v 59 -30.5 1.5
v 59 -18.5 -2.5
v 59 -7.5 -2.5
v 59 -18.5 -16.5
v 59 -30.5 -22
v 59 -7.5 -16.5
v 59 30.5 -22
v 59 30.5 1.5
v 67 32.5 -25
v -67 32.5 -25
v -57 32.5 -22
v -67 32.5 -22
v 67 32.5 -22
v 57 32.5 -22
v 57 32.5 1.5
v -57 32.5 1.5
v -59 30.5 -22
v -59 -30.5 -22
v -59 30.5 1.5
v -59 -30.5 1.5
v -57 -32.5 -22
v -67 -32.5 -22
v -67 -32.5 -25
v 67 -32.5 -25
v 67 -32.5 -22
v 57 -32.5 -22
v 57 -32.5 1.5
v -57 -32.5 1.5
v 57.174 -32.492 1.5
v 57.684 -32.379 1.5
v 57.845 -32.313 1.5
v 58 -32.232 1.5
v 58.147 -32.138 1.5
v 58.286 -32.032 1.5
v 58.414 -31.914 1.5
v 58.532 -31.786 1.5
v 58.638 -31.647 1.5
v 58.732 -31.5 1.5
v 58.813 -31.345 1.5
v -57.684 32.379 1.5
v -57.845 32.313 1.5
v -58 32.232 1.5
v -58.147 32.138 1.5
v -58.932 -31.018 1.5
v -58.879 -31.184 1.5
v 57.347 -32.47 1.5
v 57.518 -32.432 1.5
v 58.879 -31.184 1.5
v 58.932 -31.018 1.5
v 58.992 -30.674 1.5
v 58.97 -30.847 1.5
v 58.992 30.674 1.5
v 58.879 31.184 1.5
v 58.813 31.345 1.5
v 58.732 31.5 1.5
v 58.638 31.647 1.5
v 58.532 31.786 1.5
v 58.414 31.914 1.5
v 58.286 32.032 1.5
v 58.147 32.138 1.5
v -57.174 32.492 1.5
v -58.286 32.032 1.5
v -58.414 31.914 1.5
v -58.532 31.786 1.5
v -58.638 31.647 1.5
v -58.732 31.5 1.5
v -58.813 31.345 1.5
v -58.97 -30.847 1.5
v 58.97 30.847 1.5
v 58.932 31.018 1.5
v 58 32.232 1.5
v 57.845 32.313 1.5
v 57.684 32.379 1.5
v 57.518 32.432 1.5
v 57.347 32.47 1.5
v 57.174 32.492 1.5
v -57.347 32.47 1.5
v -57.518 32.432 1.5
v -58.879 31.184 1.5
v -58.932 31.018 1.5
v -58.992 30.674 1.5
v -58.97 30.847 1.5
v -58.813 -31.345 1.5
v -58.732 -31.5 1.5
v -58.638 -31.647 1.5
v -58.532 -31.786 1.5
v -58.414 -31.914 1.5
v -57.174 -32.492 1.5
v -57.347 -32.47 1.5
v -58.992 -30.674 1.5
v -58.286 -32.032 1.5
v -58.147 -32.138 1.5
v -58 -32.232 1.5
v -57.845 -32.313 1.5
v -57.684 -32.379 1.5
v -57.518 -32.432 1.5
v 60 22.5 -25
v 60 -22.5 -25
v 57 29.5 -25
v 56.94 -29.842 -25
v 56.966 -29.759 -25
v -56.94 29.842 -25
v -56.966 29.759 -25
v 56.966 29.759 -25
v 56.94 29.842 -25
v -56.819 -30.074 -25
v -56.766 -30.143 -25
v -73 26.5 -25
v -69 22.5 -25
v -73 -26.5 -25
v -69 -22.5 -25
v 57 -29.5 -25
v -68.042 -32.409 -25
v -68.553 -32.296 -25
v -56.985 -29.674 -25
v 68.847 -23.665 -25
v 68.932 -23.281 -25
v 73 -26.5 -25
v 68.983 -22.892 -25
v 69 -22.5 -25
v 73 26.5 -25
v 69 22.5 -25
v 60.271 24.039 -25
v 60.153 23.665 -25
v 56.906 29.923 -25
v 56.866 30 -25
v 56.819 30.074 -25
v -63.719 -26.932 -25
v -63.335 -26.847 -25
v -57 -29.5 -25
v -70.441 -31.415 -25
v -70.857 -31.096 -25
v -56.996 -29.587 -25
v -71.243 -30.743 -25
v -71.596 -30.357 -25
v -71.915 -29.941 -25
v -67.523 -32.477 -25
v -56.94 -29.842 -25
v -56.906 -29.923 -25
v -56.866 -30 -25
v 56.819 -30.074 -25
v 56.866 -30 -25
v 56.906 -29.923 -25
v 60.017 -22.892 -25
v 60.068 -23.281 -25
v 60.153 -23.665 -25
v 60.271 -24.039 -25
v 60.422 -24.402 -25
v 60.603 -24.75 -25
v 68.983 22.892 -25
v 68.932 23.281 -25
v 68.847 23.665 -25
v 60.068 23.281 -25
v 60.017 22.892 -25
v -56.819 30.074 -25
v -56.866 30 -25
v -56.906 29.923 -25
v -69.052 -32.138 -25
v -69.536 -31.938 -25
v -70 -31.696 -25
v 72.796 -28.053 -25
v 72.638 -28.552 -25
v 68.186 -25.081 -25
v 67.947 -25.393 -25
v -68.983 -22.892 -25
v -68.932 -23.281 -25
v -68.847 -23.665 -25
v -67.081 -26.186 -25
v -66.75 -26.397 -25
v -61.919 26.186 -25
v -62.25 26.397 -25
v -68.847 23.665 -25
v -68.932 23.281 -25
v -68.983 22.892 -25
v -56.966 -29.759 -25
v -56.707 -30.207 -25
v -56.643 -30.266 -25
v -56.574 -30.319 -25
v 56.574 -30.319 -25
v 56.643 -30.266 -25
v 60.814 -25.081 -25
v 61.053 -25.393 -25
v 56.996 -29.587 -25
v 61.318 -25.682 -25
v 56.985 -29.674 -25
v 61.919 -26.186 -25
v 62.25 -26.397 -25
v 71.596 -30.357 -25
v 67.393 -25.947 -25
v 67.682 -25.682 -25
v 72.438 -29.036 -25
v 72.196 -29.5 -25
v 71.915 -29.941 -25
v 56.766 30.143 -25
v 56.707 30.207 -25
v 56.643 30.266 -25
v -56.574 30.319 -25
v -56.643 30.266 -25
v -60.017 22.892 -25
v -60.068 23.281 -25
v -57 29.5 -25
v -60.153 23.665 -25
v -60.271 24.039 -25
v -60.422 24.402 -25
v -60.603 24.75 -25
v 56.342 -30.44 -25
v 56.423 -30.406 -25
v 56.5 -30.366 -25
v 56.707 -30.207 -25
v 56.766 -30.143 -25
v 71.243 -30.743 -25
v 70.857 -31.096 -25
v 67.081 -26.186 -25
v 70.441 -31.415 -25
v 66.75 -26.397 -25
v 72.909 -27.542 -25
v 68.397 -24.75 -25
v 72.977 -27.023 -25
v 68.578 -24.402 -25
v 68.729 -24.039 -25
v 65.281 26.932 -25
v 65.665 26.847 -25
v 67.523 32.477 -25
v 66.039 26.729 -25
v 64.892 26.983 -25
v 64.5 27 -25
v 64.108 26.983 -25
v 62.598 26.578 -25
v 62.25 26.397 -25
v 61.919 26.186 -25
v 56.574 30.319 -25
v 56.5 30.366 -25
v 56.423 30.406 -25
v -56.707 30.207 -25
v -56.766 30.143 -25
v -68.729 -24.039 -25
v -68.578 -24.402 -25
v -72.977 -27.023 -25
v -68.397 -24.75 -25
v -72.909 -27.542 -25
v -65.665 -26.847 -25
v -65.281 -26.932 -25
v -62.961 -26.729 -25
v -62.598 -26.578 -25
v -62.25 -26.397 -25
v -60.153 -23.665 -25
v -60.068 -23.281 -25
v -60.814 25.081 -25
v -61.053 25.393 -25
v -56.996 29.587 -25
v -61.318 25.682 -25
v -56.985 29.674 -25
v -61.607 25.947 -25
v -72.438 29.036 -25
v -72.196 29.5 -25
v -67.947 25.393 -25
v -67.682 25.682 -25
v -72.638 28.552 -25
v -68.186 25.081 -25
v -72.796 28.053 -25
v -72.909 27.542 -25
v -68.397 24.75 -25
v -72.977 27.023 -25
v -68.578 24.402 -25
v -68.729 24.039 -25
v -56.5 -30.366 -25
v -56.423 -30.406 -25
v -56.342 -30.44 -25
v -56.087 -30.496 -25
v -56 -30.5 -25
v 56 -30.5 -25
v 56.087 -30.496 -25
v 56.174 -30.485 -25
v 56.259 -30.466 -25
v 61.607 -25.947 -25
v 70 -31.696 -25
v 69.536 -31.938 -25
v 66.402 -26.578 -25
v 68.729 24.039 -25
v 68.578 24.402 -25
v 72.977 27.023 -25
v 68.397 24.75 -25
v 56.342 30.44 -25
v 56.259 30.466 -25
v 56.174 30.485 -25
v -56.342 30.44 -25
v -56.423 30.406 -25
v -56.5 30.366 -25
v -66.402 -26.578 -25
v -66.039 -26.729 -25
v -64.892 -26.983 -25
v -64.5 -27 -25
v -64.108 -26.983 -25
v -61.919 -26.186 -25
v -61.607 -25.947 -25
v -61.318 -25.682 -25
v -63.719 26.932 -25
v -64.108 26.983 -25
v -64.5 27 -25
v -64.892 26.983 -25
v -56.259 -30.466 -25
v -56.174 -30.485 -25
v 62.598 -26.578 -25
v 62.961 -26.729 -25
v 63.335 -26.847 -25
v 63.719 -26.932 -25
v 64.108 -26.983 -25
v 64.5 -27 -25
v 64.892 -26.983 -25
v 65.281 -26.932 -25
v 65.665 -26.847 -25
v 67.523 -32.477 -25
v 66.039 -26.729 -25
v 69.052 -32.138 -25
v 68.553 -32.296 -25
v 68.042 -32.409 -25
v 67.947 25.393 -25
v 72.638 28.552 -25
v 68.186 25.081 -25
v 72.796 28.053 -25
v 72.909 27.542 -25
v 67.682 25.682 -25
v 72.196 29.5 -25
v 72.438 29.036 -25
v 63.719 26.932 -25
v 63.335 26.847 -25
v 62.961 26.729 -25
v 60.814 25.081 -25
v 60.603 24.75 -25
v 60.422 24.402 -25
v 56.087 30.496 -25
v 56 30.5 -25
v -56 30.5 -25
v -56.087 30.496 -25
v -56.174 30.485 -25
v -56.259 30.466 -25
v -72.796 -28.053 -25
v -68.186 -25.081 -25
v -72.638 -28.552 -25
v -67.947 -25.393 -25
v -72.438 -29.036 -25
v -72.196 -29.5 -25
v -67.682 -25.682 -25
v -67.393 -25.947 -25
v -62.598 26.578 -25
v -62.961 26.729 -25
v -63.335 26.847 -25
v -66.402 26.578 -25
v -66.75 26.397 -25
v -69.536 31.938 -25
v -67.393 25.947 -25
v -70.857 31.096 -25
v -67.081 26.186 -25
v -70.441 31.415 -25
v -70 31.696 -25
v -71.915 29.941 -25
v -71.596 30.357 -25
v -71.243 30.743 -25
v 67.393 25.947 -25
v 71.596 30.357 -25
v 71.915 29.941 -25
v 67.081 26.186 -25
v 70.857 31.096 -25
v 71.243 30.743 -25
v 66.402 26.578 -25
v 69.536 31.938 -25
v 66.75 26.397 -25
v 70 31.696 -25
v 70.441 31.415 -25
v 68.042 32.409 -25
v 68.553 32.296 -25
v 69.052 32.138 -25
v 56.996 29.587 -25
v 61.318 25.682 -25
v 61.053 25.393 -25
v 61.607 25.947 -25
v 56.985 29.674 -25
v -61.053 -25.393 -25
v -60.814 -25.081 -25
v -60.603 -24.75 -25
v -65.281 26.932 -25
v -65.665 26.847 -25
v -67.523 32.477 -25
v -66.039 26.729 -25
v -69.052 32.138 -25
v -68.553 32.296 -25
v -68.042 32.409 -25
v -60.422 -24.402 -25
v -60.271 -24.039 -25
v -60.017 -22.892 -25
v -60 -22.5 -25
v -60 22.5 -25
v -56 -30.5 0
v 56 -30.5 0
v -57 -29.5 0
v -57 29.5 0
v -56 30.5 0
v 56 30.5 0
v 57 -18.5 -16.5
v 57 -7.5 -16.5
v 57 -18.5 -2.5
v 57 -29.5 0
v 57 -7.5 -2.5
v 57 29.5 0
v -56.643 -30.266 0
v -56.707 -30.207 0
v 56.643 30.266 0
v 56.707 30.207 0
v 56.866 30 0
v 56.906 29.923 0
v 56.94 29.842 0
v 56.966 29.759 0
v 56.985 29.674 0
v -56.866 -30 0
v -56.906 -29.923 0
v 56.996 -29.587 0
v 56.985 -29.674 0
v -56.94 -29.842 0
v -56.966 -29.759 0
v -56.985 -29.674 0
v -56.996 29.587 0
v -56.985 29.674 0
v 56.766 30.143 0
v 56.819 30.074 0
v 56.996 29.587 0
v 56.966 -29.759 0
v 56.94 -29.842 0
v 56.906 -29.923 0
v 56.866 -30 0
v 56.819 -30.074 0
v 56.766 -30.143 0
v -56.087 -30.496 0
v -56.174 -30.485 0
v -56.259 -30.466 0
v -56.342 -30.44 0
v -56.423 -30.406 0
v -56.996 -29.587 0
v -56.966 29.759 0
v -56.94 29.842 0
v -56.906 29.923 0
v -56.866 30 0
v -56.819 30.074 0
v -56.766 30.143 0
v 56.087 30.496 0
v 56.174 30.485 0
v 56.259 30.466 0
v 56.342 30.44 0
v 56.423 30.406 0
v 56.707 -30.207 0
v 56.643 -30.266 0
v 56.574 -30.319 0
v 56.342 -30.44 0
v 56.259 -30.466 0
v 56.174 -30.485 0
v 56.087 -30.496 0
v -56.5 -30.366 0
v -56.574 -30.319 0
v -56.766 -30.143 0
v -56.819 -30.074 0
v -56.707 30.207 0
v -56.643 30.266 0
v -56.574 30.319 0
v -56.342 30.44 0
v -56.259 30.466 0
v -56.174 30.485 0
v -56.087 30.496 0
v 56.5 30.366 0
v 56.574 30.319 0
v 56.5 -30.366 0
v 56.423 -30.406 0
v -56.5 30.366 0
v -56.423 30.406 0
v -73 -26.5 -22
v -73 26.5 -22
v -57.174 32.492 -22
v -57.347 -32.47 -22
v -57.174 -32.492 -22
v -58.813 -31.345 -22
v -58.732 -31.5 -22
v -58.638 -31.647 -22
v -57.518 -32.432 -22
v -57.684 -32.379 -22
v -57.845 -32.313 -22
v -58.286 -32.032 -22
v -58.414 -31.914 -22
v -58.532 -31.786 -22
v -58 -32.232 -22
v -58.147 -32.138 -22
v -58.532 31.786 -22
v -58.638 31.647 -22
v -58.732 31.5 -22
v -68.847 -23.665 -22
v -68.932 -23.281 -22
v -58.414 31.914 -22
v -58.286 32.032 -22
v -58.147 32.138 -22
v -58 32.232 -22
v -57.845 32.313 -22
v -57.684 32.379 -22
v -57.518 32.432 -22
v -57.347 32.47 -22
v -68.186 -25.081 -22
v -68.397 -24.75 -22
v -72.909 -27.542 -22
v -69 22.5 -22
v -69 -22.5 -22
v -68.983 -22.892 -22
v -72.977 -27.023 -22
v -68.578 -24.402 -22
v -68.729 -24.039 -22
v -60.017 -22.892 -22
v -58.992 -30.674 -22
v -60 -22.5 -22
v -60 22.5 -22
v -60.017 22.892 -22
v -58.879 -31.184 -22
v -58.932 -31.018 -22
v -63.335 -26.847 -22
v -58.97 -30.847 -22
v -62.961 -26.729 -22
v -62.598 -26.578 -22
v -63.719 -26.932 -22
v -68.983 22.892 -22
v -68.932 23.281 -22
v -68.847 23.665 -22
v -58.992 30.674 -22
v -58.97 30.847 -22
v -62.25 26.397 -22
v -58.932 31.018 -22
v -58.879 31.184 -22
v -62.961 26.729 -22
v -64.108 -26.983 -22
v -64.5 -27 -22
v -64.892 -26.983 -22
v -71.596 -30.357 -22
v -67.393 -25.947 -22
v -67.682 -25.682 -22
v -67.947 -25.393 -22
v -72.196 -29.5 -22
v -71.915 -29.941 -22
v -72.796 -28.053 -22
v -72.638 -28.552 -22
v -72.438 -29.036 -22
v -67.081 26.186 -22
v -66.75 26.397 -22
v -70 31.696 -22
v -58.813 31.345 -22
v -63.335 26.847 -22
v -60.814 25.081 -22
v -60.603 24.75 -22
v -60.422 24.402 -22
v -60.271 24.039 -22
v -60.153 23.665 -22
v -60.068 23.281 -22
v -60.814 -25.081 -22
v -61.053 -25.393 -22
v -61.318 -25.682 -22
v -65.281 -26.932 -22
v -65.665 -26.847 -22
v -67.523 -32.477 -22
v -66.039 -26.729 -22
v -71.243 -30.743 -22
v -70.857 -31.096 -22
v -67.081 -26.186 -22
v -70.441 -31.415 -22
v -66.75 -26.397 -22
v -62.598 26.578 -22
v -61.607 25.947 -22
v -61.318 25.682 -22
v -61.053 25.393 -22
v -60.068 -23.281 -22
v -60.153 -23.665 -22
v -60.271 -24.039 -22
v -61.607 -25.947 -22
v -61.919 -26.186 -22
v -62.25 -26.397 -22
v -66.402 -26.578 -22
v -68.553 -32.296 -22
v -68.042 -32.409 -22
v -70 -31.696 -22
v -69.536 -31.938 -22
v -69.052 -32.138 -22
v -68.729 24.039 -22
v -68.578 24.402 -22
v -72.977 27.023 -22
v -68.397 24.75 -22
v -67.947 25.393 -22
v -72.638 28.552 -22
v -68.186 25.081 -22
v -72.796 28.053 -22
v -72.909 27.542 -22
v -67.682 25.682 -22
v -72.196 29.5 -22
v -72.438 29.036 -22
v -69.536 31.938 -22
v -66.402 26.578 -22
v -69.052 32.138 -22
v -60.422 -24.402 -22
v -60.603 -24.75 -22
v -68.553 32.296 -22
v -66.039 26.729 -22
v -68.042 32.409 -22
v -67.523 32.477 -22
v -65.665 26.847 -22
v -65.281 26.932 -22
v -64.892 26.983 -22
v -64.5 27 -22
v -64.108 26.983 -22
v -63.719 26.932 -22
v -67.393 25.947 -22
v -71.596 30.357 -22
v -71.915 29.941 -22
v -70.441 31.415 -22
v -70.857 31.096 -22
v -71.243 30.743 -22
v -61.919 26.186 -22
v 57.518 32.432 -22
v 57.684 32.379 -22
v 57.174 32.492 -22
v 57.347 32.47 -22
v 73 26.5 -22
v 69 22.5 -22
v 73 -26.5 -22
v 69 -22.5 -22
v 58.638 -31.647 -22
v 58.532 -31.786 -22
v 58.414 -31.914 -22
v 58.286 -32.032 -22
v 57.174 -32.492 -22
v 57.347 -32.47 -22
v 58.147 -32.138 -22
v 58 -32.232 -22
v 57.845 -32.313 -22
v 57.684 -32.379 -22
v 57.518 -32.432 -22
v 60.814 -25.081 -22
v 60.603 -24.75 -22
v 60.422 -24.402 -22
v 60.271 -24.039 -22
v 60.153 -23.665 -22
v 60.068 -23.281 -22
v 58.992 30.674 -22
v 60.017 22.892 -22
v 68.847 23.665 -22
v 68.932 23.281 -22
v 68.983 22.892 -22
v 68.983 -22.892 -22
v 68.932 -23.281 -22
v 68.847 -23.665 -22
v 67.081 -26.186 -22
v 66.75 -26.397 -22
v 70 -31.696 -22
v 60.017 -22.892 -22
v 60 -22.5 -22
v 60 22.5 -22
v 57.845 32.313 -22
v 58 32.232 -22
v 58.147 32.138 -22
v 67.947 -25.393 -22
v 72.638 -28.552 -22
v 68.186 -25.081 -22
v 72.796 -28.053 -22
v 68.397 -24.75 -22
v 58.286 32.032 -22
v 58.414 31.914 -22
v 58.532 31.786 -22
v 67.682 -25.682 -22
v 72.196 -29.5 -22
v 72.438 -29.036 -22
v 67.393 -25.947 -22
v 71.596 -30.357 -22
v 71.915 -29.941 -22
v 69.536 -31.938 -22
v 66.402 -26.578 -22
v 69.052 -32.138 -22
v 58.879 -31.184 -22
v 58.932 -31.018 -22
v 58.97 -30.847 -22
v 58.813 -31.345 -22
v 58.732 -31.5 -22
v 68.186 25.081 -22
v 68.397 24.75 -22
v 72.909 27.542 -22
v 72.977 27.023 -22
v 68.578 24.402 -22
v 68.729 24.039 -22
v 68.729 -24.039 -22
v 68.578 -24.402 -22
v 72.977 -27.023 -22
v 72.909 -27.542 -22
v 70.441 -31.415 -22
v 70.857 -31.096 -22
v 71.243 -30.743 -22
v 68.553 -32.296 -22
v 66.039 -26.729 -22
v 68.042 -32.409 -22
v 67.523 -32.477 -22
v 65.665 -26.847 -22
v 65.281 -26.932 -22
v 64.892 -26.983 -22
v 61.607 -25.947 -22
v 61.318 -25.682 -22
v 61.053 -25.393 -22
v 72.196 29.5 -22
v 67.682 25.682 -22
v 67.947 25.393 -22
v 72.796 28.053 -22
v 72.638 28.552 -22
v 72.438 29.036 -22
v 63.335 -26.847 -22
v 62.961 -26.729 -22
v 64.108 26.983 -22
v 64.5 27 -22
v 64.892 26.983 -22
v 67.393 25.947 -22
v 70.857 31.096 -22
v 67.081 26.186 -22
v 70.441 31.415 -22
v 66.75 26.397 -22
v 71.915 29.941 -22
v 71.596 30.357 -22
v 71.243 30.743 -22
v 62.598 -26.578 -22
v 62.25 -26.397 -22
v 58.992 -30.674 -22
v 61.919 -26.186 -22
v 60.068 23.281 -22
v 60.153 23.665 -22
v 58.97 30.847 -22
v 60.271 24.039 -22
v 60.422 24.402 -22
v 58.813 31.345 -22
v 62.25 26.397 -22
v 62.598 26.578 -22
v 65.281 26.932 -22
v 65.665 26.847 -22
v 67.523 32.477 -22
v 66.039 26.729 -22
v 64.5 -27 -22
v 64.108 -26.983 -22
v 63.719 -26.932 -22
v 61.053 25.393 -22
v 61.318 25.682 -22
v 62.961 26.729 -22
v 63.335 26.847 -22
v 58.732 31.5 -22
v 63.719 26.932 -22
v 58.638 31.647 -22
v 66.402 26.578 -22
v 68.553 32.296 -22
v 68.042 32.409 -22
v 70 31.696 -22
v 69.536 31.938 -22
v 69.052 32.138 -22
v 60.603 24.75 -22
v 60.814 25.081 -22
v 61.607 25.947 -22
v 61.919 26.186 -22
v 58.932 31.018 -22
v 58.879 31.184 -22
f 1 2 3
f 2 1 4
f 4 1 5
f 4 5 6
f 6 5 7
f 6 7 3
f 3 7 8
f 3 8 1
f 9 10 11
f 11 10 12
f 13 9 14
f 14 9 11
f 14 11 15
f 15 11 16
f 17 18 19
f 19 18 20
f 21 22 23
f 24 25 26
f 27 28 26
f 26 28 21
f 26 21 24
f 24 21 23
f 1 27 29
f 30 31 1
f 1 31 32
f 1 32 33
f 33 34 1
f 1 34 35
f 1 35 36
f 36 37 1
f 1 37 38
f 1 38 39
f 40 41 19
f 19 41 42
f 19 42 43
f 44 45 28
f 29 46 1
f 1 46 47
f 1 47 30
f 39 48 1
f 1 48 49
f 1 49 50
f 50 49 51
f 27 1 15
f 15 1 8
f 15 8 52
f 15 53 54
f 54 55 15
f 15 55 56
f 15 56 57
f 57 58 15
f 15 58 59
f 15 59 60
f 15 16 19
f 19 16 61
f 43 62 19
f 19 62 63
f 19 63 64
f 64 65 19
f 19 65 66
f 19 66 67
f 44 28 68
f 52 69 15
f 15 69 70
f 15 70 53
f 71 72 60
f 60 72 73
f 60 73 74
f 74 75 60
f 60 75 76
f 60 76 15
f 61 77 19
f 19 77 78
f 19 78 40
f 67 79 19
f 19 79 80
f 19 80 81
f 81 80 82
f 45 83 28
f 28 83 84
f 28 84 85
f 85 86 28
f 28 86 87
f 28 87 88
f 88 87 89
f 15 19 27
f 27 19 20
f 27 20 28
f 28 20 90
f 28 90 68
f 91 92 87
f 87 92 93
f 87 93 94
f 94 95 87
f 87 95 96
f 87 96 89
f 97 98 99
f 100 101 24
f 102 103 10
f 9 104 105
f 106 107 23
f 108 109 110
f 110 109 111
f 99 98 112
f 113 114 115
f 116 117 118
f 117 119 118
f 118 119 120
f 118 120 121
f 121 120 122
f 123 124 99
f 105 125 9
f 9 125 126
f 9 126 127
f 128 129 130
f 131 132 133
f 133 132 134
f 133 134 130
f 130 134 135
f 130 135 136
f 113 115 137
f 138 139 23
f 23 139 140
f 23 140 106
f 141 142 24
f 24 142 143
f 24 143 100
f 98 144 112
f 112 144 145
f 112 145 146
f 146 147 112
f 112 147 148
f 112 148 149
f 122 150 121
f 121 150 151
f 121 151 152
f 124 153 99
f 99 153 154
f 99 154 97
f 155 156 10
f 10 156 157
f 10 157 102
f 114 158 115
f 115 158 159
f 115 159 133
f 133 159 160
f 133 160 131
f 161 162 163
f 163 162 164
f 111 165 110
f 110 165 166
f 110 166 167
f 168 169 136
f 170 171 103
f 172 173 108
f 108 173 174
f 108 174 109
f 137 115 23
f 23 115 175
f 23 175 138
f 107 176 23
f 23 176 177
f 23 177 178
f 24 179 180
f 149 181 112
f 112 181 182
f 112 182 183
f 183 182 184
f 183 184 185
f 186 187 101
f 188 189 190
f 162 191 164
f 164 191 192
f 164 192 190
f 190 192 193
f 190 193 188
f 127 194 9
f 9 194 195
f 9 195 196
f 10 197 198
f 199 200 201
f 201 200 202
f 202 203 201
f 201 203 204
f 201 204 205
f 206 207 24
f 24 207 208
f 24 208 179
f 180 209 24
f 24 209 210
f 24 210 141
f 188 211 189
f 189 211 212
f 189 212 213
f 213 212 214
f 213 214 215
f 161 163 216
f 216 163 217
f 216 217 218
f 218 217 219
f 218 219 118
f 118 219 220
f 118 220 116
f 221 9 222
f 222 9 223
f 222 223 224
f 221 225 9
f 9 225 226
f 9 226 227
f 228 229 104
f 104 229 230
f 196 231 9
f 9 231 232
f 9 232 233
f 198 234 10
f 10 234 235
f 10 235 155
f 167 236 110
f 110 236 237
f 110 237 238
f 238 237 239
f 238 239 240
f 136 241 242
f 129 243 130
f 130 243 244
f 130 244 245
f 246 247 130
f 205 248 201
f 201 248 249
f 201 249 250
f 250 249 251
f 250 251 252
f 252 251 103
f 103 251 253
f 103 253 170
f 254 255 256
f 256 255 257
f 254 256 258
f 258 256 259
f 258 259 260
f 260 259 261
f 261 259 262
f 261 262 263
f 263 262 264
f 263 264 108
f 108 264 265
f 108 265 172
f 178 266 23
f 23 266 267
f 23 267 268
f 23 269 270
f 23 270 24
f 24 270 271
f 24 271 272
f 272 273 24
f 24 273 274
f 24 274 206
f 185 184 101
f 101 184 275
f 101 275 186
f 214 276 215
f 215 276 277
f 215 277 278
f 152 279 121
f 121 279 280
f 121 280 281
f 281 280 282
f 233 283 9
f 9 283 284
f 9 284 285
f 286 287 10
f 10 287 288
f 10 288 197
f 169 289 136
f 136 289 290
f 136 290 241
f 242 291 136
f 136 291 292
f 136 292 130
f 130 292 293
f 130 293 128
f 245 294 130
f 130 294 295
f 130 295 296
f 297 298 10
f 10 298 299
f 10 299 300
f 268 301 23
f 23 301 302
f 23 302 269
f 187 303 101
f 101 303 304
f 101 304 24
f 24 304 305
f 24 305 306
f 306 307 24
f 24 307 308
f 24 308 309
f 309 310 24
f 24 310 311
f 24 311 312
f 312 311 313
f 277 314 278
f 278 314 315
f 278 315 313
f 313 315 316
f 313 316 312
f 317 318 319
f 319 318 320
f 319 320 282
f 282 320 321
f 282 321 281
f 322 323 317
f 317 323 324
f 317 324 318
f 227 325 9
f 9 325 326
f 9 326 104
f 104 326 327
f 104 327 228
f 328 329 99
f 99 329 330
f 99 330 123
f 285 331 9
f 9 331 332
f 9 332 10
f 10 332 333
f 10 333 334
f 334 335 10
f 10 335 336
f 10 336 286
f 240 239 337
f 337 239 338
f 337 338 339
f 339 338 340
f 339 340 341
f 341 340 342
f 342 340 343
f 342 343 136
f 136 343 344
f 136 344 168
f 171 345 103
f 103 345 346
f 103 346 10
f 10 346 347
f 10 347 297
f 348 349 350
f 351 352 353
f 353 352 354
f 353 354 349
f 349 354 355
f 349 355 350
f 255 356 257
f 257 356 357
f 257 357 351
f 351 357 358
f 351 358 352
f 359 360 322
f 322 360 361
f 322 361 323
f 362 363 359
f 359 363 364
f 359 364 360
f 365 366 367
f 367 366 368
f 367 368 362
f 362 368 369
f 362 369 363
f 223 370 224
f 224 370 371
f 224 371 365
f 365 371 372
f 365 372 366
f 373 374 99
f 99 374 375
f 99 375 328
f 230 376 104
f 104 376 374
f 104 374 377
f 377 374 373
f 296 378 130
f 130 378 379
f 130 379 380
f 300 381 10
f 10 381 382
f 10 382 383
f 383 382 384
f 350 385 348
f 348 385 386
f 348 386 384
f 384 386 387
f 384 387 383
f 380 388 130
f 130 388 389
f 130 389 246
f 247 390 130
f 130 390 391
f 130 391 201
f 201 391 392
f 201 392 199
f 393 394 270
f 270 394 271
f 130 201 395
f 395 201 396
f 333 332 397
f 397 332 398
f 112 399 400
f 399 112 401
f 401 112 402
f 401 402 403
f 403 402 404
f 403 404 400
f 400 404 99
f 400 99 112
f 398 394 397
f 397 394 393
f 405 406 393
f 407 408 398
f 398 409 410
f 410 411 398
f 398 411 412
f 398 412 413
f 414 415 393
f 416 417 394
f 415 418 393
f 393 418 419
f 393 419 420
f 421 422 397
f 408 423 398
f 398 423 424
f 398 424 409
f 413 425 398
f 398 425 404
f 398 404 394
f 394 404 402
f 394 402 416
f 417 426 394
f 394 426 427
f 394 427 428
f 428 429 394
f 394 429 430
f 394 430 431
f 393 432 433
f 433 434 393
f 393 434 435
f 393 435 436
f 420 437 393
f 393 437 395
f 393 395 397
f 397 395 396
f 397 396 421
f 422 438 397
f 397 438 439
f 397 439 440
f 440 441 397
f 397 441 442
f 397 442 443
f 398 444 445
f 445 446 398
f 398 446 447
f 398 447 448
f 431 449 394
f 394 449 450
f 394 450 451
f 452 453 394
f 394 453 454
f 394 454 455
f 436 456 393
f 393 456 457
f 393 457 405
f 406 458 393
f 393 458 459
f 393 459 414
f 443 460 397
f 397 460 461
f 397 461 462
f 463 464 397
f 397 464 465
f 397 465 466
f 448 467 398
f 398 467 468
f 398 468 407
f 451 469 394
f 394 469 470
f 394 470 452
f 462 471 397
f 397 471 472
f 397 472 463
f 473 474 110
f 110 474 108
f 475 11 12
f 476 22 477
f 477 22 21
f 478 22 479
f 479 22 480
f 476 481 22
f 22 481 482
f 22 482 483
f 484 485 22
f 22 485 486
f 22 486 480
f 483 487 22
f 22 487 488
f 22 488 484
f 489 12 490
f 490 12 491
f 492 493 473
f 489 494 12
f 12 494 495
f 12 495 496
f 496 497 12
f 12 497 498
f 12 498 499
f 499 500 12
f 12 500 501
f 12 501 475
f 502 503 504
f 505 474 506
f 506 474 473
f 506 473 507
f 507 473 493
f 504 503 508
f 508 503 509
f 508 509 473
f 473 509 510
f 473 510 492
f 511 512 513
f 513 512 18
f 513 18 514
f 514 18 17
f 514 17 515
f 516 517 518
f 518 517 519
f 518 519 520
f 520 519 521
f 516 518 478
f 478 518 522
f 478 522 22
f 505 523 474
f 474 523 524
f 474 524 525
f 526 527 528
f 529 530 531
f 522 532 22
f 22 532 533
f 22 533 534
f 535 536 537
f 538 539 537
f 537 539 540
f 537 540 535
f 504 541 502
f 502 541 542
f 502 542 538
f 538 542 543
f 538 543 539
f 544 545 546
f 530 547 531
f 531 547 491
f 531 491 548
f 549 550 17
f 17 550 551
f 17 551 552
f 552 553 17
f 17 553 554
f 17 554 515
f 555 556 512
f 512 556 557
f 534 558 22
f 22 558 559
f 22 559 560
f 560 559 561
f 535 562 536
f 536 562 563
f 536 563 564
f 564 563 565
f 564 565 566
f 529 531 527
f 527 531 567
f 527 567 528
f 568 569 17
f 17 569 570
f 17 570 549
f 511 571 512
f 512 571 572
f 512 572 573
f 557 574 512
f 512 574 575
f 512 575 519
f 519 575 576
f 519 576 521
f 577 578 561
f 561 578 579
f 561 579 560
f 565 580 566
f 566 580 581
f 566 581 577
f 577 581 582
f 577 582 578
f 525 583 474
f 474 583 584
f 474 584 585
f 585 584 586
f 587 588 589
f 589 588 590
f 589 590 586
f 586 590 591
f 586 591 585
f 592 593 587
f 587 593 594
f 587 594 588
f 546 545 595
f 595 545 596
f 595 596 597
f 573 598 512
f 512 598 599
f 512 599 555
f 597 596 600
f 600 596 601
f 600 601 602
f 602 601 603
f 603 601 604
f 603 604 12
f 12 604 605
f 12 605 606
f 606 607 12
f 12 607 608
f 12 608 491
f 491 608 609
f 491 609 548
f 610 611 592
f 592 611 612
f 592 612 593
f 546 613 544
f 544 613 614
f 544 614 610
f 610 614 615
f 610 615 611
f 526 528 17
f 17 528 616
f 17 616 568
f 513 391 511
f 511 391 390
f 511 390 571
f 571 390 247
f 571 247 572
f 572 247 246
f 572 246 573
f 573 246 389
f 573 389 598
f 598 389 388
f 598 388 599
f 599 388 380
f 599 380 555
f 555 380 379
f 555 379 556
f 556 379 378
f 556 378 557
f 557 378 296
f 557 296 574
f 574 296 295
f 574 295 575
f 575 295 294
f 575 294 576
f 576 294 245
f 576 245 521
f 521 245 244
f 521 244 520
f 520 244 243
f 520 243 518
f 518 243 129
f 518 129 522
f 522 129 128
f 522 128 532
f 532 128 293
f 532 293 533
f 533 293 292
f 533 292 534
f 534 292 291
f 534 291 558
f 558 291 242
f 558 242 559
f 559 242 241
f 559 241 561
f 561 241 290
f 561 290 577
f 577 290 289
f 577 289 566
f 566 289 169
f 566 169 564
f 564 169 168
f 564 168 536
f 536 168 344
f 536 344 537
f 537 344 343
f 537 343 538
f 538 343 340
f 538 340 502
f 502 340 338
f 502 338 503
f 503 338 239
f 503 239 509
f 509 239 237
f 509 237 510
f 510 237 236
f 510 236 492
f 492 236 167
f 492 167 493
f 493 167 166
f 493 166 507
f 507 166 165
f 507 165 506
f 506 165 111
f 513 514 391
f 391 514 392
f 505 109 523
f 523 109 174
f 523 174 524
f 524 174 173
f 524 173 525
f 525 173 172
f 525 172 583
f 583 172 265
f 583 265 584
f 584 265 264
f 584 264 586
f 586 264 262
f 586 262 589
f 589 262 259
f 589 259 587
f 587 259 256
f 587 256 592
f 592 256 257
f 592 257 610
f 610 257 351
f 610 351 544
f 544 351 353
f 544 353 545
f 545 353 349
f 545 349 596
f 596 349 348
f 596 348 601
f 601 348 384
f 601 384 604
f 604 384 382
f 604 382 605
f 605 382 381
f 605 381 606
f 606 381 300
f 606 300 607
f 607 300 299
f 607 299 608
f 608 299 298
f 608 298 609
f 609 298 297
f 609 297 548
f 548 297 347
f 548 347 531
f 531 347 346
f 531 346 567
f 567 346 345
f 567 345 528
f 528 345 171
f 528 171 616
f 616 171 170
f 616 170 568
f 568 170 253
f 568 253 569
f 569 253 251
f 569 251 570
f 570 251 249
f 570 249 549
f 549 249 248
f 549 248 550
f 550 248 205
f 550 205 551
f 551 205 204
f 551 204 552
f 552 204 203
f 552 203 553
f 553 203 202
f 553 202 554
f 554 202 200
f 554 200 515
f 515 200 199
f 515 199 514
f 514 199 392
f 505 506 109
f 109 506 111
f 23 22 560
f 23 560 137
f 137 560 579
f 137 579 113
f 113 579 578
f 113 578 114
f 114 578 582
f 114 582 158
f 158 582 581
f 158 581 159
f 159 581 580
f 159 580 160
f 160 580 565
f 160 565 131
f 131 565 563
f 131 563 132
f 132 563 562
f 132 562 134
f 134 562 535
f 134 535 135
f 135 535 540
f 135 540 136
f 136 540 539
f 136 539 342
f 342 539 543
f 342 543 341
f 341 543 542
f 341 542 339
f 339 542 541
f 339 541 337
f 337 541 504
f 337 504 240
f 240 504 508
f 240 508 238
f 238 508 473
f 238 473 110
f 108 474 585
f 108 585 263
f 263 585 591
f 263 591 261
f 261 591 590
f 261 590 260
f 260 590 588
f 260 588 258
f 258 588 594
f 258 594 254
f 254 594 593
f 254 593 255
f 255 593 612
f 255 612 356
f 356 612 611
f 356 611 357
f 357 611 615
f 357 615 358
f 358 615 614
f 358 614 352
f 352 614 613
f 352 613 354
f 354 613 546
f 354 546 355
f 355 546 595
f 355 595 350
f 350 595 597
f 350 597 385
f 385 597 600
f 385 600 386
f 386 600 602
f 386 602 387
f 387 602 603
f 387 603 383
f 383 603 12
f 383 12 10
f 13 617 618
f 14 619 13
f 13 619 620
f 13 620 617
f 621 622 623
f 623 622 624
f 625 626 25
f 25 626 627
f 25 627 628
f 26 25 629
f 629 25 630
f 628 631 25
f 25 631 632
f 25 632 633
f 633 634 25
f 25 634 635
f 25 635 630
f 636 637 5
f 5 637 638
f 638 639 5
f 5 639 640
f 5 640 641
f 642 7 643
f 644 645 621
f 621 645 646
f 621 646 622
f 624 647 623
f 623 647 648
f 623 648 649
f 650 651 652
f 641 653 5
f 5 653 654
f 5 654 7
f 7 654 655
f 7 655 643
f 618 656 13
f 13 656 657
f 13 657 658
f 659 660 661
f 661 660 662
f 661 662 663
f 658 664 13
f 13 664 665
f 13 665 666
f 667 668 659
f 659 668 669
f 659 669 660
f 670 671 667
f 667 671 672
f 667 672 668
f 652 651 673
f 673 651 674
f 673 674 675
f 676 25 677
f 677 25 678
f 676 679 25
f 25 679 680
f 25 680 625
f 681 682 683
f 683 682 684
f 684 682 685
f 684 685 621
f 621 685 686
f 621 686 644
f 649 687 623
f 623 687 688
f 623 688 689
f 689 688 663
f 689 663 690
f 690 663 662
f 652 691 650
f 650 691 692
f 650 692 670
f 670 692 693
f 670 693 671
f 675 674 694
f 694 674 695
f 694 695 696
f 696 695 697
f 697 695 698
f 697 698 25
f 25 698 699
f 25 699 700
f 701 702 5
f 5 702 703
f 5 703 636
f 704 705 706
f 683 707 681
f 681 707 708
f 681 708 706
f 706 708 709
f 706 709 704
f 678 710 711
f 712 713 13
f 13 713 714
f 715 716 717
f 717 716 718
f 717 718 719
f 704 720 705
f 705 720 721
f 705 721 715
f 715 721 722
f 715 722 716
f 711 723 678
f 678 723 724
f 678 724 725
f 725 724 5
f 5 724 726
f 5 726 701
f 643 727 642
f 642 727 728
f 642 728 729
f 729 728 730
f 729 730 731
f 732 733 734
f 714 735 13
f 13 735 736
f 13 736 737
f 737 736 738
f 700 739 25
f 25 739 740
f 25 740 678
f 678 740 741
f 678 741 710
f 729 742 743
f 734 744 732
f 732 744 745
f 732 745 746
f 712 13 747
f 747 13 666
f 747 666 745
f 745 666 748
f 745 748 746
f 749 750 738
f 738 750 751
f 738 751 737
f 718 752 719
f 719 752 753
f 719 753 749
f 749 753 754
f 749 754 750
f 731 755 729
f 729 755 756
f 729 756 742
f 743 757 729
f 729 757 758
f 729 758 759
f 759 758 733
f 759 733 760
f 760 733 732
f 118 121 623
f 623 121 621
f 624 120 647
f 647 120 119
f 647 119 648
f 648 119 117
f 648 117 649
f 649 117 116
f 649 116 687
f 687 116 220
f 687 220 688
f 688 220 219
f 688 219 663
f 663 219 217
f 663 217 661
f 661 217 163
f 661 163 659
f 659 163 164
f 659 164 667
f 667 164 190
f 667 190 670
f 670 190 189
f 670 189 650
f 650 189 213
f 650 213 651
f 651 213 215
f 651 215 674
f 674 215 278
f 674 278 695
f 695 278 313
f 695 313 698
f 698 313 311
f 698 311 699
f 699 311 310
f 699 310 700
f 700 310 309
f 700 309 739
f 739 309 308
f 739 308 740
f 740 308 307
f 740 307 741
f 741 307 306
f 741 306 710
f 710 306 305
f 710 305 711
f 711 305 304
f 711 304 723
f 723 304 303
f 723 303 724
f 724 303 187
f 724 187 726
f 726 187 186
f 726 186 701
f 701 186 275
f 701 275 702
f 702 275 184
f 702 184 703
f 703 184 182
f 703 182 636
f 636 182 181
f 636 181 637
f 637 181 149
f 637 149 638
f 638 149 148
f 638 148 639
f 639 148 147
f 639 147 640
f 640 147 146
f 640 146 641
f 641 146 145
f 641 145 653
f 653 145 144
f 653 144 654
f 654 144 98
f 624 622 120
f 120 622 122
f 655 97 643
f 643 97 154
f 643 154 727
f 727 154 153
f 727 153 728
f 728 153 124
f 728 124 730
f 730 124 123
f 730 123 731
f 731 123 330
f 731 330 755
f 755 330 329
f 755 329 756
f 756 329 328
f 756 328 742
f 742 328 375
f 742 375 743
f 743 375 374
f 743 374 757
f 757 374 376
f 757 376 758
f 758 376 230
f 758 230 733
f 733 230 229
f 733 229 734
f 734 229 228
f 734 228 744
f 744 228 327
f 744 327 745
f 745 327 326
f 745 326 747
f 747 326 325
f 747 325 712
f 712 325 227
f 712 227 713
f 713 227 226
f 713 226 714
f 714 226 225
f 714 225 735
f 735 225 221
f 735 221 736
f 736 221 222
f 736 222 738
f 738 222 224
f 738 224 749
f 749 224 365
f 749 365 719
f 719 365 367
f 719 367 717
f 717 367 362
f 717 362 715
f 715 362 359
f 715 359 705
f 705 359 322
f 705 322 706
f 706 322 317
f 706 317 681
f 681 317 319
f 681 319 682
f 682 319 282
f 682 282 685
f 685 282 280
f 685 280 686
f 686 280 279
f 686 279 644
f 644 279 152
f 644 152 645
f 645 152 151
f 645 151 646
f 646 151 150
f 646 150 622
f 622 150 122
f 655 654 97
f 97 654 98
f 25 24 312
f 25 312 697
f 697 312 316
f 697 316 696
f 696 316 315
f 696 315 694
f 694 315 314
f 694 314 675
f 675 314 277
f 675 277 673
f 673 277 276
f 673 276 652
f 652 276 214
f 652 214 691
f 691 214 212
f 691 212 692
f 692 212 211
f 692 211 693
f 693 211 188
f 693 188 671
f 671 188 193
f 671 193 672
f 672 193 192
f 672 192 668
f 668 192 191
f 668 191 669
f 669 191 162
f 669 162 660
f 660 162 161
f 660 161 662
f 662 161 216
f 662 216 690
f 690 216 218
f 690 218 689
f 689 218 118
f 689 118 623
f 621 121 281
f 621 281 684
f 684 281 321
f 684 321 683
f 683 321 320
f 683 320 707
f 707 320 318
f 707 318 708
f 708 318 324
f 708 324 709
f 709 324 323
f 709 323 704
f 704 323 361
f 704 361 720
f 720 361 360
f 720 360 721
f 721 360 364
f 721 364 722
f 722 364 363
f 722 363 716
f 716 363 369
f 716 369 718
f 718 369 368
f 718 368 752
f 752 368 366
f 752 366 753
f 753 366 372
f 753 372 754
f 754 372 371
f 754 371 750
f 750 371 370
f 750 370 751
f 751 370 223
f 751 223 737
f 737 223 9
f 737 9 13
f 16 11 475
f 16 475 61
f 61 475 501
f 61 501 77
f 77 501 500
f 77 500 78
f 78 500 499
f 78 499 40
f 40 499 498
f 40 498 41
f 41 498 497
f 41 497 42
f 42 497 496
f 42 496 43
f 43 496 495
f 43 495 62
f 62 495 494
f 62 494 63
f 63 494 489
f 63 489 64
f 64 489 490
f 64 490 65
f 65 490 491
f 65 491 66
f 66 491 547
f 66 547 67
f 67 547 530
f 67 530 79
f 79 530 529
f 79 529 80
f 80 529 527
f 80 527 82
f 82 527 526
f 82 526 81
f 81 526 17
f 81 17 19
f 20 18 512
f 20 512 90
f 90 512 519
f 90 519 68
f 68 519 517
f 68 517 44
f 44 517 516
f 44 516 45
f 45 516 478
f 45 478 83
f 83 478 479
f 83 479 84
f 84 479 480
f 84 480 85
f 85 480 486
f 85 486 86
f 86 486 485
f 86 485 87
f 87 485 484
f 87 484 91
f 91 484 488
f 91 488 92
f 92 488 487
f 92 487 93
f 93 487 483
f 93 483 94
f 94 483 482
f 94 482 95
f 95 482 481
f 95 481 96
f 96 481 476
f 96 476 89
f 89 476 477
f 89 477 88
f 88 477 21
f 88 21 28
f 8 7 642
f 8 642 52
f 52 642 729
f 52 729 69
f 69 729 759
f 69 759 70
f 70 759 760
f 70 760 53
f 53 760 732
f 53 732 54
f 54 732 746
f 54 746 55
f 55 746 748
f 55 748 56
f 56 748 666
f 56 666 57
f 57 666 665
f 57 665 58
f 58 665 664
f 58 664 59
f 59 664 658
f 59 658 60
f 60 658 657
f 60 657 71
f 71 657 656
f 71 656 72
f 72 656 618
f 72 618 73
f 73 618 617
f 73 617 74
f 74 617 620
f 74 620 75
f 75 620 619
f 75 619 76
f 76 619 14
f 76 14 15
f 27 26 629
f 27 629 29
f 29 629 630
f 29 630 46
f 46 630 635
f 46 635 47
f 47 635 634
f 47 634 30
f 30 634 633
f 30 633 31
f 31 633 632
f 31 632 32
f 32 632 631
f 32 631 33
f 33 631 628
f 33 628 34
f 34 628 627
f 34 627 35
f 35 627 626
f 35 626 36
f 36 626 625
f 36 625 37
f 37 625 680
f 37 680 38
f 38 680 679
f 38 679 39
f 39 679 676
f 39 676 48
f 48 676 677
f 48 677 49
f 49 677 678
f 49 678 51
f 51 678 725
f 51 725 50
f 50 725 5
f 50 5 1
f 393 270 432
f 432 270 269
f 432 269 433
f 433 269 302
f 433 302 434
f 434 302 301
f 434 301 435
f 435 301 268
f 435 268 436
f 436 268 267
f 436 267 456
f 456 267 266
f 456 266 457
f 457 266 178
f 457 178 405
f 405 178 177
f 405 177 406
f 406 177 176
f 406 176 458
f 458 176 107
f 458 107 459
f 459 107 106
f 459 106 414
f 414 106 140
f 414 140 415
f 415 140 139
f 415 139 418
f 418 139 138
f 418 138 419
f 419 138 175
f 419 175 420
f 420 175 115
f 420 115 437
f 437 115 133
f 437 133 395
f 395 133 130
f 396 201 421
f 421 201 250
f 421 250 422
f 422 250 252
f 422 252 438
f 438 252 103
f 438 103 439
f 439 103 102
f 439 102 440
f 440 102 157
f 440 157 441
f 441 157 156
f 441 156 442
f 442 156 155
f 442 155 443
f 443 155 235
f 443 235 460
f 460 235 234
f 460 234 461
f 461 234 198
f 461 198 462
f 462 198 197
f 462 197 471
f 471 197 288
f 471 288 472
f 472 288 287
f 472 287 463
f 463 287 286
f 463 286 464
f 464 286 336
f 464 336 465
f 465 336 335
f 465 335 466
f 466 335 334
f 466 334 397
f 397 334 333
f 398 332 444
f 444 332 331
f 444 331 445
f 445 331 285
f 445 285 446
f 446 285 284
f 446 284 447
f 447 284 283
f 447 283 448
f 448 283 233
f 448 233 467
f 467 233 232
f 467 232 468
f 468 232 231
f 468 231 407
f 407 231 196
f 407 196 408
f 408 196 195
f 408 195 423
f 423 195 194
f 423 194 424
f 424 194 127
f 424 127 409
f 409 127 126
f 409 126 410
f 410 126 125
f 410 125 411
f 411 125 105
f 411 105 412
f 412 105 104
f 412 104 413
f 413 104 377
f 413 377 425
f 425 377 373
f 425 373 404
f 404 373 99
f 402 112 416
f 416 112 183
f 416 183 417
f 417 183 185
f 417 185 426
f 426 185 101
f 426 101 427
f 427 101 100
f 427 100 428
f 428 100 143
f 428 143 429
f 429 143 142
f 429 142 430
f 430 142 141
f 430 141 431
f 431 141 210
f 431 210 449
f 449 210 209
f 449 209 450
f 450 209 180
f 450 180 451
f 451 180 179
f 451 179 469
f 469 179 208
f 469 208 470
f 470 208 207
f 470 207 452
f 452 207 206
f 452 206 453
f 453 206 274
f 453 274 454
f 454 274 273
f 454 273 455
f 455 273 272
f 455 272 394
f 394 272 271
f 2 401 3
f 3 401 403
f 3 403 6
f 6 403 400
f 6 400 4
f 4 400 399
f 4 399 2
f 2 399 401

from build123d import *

# Parameters (mm, degrees)
SKETCH2_W            = 118
SKETCH2_H            = 65
BOSS_EXTRUDE2_DEPTH  = 1.5
SKETCH4_W            = 118
SKETCH4_H            = 65
SKETCH4_W_2          = 114
SKETCH4_H_2          = 61
BOSS_EXTRUDE3_DEPTH  = 25
SKETCH6_W            = 14
SKETCH6_H            = 65
BOSS_EXTRUDE4_DEPTH  = 3
FILLET1_R            = 6
FILLET1_OF_MIRROR1_R = 6
FILLET2_R            = 2
FILLET3_R            = 1
SKETCH7_W            = 14
SKETCH7_H            = 11
CUT_EXTRUDE1_DEPTH   = 10


with BuildPart() as part:
    # Sketch2 → Boss-Extrude2 (new body)
    with BuildSketch(Plane.XY):
        Rectangle(SKETCH2_W, SKETCH2_H)
    extrude(amount=BOSS_EXTRUDE2_DEPTH)

    # Sketch4 → Boss-Extrude3 (add)
    with BuildSketch(Plane.XY):
        Rectangle(SKETCH4_W, SKETCH4_H)
        Rectangle(SKETCH4_W_2, SKETCH4_H_2, mode=Mode.SUBTRACT)
    extrude(amount=-BOSS_EXTRUDE3_DEPTH)

    # Sketch6 → Boss-Extrude4 (add)
    with BuildSketch(Plane(origin=(0, 0, -25), x_dir=(-1, 0, 0), z_dir=(0, 0, -1))):
        with Locations((66, 0)):
            Rectangle(SKETCH6_W, SKETCH6_H)
        with BuildLine():
            Line((60, -22.5), (60, 22.5))
            ThreePointArc((60, 22.5), (64.5, 27), (69, 22.5))
            Line((69, 22.5), (69, -22.5))
            ThreePointArc((69, -22.5), (64.5, -27), (60, -22.5))
        make_face(mode=Mode.SUBTRACT)
    boss_extrude4 = extrude(amount=-BOSS_EXTRUDE4_DEPTH)

    # Fillet1
    fillet1_edges = [part.edges().sort_by_distance(p)[0] for p in [
        (-73, -32.5, -23.5),
        (-73, 32.5, -23.5),
    ]]
    fillet(fillet1_edges, radius=FILLET1_R)

    # Mirror1: Boss-Extrude4 across plane
    add(boss_extrude4.mirror(Plane(origin=(0, 0, 0), x_dir=(0, 0, 1), z_dir=(1, 0, 0))))

    # Fillet1 of Mirror1
    fillet1_of_mirror1_edges = [part.edges().sort_by_distance(p)[0] for p in [
        (73, -32.5, -23.5),
        (73, 32.5, -23.5),
    ]]
    fillet(fillet1_of_mirror1_edges, radius=FILLET1_OF_MIRROR1_R)

    # Fillet2
    fillet2_edges = [part.edges().sort_by_distance(p)[0] for p in [
        (-59, 32.5, -10.25),
        (-59, -32.5, -10.25),
        (59, 32.5, -10.25),
        (59, -32.5, -10.25),
    ]]
    fillet(fillet2_edges, radius=FILLET2_R)

    # Fillet3
    fillet3_edges = [part.edges().sort_by_distance(p)[0] for p in [
        (-57, -30.5, -12.5),
        (-57, 30.5, -12.5),
        (57, 30.5, -12.5),
        (57, -30.5, -12.5),
    ]]
    fillet(fillet3_edges, radius=FILLET3_R)

    # Sketch7 → Cut-Extrude1 (cut)
    with BuildSketch(Plane(origin=(59, 0, 0), x_dir=(0, 0, -1), z_dir=(1, 0, 0))):
        with Locations((9.5, -13)):
            Rectangle(SKETCH7_W, SKETCH7_H)
    extrude(amount=-CUT_EXTRUDE1_DEPTH, mode=Mode.SUBTRACT)


solid = part.part
